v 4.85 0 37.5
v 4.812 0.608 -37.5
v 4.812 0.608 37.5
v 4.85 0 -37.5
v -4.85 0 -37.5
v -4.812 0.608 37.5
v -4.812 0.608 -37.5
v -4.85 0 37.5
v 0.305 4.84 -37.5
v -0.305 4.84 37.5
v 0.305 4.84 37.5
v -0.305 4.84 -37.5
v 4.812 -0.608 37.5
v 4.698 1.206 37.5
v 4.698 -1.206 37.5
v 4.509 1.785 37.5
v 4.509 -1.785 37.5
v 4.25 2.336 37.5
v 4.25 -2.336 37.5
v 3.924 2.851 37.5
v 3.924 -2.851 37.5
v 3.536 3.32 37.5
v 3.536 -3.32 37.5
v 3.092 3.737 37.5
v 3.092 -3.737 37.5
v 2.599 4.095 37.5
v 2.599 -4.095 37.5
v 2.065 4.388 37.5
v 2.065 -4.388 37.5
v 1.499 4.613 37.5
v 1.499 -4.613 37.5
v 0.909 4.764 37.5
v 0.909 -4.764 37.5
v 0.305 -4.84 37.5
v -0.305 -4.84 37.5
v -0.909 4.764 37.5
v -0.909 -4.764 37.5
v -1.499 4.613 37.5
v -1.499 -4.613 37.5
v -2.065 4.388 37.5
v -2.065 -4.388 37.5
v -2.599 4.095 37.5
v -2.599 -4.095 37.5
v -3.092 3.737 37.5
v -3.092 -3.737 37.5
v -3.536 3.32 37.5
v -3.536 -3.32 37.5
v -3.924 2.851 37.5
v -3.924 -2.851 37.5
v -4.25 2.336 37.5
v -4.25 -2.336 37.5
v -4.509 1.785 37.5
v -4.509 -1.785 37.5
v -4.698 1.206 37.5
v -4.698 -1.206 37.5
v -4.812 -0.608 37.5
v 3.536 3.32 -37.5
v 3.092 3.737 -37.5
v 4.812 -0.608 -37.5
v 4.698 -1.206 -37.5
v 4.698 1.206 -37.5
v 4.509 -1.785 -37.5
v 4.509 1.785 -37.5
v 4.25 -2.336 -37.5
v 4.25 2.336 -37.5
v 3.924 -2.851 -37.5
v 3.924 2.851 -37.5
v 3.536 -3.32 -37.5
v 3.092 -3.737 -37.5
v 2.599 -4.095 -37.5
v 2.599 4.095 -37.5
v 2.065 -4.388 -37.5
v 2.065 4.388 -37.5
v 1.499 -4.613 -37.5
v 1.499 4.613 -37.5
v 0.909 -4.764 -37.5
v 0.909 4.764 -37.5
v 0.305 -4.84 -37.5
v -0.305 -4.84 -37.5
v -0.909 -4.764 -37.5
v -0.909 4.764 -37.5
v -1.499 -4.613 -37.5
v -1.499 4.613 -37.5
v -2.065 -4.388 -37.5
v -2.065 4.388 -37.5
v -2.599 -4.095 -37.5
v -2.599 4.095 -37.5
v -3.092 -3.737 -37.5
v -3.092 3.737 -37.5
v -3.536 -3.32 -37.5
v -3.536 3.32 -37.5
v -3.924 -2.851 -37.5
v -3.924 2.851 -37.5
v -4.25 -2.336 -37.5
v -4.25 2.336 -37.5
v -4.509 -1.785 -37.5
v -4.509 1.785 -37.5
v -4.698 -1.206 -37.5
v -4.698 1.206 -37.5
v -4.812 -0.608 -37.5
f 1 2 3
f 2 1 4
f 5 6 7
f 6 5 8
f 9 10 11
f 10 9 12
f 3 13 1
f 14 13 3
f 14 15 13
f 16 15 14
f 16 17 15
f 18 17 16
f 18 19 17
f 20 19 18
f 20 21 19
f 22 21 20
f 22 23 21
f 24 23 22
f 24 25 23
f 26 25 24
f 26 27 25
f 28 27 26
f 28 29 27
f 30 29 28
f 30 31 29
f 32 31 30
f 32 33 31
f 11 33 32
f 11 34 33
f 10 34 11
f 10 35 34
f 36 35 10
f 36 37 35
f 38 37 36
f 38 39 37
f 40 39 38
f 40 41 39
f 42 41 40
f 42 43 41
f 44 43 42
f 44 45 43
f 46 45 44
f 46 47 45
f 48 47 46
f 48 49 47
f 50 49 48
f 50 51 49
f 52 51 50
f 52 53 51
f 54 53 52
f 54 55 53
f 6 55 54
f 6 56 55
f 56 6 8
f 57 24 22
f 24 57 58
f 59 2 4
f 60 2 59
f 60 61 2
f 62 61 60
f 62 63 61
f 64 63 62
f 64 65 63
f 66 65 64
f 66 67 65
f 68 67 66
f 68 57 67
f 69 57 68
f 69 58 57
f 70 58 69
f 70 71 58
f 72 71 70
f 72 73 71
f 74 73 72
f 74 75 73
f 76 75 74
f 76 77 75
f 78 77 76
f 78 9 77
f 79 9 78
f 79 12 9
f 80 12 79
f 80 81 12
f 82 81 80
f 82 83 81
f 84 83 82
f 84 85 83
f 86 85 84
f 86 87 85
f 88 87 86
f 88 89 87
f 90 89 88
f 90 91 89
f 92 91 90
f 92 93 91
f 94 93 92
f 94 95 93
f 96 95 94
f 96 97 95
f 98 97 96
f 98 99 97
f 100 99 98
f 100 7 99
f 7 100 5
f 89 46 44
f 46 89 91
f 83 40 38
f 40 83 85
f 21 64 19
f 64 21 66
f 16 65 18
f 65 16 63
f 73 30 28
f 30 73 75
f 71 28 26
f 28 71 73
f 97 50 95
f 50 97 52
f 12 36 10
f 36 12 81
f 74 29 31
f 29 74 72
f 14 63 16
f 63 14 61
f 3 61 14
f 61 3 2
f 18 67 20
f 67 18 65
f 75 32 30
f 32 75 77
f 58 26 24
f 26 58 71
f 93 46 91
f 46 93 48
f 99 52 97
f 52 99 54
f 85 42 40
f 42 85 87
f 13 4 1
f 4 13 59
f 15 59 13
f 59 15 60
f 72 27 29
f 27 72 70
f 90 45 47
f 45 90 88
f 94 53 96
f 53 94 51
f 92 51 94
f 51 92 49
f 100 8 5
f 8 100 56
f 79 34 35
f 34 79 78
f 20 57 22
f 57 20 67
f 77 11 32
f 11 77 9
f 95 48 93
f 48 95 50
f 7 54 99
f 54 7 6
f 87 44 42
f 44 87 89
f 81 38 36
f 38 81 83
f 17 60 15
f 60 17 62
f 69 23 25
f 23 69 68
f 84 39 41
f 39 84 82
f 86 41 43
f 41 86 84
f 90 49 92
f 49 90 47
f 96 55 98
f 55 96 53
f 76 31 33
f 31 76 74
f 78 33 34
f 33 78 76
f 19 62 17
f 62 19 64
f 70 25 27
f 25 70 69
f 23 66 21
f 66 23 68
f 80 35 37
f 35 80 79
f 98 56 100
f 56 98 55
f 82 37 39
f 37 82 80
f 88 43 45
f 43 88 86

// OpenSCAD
$fn = 50;


difference() {
	union() {
		translate(v = [0, 0, -37.5000000000]) {
			cylinder(h = 75, r = 4.8500000000);
		}
	}
	union() {
		translate(v = [0, 0, -100.0000000000]) {
			cylinder(h = 200, r = 0);
		}
	}
}
